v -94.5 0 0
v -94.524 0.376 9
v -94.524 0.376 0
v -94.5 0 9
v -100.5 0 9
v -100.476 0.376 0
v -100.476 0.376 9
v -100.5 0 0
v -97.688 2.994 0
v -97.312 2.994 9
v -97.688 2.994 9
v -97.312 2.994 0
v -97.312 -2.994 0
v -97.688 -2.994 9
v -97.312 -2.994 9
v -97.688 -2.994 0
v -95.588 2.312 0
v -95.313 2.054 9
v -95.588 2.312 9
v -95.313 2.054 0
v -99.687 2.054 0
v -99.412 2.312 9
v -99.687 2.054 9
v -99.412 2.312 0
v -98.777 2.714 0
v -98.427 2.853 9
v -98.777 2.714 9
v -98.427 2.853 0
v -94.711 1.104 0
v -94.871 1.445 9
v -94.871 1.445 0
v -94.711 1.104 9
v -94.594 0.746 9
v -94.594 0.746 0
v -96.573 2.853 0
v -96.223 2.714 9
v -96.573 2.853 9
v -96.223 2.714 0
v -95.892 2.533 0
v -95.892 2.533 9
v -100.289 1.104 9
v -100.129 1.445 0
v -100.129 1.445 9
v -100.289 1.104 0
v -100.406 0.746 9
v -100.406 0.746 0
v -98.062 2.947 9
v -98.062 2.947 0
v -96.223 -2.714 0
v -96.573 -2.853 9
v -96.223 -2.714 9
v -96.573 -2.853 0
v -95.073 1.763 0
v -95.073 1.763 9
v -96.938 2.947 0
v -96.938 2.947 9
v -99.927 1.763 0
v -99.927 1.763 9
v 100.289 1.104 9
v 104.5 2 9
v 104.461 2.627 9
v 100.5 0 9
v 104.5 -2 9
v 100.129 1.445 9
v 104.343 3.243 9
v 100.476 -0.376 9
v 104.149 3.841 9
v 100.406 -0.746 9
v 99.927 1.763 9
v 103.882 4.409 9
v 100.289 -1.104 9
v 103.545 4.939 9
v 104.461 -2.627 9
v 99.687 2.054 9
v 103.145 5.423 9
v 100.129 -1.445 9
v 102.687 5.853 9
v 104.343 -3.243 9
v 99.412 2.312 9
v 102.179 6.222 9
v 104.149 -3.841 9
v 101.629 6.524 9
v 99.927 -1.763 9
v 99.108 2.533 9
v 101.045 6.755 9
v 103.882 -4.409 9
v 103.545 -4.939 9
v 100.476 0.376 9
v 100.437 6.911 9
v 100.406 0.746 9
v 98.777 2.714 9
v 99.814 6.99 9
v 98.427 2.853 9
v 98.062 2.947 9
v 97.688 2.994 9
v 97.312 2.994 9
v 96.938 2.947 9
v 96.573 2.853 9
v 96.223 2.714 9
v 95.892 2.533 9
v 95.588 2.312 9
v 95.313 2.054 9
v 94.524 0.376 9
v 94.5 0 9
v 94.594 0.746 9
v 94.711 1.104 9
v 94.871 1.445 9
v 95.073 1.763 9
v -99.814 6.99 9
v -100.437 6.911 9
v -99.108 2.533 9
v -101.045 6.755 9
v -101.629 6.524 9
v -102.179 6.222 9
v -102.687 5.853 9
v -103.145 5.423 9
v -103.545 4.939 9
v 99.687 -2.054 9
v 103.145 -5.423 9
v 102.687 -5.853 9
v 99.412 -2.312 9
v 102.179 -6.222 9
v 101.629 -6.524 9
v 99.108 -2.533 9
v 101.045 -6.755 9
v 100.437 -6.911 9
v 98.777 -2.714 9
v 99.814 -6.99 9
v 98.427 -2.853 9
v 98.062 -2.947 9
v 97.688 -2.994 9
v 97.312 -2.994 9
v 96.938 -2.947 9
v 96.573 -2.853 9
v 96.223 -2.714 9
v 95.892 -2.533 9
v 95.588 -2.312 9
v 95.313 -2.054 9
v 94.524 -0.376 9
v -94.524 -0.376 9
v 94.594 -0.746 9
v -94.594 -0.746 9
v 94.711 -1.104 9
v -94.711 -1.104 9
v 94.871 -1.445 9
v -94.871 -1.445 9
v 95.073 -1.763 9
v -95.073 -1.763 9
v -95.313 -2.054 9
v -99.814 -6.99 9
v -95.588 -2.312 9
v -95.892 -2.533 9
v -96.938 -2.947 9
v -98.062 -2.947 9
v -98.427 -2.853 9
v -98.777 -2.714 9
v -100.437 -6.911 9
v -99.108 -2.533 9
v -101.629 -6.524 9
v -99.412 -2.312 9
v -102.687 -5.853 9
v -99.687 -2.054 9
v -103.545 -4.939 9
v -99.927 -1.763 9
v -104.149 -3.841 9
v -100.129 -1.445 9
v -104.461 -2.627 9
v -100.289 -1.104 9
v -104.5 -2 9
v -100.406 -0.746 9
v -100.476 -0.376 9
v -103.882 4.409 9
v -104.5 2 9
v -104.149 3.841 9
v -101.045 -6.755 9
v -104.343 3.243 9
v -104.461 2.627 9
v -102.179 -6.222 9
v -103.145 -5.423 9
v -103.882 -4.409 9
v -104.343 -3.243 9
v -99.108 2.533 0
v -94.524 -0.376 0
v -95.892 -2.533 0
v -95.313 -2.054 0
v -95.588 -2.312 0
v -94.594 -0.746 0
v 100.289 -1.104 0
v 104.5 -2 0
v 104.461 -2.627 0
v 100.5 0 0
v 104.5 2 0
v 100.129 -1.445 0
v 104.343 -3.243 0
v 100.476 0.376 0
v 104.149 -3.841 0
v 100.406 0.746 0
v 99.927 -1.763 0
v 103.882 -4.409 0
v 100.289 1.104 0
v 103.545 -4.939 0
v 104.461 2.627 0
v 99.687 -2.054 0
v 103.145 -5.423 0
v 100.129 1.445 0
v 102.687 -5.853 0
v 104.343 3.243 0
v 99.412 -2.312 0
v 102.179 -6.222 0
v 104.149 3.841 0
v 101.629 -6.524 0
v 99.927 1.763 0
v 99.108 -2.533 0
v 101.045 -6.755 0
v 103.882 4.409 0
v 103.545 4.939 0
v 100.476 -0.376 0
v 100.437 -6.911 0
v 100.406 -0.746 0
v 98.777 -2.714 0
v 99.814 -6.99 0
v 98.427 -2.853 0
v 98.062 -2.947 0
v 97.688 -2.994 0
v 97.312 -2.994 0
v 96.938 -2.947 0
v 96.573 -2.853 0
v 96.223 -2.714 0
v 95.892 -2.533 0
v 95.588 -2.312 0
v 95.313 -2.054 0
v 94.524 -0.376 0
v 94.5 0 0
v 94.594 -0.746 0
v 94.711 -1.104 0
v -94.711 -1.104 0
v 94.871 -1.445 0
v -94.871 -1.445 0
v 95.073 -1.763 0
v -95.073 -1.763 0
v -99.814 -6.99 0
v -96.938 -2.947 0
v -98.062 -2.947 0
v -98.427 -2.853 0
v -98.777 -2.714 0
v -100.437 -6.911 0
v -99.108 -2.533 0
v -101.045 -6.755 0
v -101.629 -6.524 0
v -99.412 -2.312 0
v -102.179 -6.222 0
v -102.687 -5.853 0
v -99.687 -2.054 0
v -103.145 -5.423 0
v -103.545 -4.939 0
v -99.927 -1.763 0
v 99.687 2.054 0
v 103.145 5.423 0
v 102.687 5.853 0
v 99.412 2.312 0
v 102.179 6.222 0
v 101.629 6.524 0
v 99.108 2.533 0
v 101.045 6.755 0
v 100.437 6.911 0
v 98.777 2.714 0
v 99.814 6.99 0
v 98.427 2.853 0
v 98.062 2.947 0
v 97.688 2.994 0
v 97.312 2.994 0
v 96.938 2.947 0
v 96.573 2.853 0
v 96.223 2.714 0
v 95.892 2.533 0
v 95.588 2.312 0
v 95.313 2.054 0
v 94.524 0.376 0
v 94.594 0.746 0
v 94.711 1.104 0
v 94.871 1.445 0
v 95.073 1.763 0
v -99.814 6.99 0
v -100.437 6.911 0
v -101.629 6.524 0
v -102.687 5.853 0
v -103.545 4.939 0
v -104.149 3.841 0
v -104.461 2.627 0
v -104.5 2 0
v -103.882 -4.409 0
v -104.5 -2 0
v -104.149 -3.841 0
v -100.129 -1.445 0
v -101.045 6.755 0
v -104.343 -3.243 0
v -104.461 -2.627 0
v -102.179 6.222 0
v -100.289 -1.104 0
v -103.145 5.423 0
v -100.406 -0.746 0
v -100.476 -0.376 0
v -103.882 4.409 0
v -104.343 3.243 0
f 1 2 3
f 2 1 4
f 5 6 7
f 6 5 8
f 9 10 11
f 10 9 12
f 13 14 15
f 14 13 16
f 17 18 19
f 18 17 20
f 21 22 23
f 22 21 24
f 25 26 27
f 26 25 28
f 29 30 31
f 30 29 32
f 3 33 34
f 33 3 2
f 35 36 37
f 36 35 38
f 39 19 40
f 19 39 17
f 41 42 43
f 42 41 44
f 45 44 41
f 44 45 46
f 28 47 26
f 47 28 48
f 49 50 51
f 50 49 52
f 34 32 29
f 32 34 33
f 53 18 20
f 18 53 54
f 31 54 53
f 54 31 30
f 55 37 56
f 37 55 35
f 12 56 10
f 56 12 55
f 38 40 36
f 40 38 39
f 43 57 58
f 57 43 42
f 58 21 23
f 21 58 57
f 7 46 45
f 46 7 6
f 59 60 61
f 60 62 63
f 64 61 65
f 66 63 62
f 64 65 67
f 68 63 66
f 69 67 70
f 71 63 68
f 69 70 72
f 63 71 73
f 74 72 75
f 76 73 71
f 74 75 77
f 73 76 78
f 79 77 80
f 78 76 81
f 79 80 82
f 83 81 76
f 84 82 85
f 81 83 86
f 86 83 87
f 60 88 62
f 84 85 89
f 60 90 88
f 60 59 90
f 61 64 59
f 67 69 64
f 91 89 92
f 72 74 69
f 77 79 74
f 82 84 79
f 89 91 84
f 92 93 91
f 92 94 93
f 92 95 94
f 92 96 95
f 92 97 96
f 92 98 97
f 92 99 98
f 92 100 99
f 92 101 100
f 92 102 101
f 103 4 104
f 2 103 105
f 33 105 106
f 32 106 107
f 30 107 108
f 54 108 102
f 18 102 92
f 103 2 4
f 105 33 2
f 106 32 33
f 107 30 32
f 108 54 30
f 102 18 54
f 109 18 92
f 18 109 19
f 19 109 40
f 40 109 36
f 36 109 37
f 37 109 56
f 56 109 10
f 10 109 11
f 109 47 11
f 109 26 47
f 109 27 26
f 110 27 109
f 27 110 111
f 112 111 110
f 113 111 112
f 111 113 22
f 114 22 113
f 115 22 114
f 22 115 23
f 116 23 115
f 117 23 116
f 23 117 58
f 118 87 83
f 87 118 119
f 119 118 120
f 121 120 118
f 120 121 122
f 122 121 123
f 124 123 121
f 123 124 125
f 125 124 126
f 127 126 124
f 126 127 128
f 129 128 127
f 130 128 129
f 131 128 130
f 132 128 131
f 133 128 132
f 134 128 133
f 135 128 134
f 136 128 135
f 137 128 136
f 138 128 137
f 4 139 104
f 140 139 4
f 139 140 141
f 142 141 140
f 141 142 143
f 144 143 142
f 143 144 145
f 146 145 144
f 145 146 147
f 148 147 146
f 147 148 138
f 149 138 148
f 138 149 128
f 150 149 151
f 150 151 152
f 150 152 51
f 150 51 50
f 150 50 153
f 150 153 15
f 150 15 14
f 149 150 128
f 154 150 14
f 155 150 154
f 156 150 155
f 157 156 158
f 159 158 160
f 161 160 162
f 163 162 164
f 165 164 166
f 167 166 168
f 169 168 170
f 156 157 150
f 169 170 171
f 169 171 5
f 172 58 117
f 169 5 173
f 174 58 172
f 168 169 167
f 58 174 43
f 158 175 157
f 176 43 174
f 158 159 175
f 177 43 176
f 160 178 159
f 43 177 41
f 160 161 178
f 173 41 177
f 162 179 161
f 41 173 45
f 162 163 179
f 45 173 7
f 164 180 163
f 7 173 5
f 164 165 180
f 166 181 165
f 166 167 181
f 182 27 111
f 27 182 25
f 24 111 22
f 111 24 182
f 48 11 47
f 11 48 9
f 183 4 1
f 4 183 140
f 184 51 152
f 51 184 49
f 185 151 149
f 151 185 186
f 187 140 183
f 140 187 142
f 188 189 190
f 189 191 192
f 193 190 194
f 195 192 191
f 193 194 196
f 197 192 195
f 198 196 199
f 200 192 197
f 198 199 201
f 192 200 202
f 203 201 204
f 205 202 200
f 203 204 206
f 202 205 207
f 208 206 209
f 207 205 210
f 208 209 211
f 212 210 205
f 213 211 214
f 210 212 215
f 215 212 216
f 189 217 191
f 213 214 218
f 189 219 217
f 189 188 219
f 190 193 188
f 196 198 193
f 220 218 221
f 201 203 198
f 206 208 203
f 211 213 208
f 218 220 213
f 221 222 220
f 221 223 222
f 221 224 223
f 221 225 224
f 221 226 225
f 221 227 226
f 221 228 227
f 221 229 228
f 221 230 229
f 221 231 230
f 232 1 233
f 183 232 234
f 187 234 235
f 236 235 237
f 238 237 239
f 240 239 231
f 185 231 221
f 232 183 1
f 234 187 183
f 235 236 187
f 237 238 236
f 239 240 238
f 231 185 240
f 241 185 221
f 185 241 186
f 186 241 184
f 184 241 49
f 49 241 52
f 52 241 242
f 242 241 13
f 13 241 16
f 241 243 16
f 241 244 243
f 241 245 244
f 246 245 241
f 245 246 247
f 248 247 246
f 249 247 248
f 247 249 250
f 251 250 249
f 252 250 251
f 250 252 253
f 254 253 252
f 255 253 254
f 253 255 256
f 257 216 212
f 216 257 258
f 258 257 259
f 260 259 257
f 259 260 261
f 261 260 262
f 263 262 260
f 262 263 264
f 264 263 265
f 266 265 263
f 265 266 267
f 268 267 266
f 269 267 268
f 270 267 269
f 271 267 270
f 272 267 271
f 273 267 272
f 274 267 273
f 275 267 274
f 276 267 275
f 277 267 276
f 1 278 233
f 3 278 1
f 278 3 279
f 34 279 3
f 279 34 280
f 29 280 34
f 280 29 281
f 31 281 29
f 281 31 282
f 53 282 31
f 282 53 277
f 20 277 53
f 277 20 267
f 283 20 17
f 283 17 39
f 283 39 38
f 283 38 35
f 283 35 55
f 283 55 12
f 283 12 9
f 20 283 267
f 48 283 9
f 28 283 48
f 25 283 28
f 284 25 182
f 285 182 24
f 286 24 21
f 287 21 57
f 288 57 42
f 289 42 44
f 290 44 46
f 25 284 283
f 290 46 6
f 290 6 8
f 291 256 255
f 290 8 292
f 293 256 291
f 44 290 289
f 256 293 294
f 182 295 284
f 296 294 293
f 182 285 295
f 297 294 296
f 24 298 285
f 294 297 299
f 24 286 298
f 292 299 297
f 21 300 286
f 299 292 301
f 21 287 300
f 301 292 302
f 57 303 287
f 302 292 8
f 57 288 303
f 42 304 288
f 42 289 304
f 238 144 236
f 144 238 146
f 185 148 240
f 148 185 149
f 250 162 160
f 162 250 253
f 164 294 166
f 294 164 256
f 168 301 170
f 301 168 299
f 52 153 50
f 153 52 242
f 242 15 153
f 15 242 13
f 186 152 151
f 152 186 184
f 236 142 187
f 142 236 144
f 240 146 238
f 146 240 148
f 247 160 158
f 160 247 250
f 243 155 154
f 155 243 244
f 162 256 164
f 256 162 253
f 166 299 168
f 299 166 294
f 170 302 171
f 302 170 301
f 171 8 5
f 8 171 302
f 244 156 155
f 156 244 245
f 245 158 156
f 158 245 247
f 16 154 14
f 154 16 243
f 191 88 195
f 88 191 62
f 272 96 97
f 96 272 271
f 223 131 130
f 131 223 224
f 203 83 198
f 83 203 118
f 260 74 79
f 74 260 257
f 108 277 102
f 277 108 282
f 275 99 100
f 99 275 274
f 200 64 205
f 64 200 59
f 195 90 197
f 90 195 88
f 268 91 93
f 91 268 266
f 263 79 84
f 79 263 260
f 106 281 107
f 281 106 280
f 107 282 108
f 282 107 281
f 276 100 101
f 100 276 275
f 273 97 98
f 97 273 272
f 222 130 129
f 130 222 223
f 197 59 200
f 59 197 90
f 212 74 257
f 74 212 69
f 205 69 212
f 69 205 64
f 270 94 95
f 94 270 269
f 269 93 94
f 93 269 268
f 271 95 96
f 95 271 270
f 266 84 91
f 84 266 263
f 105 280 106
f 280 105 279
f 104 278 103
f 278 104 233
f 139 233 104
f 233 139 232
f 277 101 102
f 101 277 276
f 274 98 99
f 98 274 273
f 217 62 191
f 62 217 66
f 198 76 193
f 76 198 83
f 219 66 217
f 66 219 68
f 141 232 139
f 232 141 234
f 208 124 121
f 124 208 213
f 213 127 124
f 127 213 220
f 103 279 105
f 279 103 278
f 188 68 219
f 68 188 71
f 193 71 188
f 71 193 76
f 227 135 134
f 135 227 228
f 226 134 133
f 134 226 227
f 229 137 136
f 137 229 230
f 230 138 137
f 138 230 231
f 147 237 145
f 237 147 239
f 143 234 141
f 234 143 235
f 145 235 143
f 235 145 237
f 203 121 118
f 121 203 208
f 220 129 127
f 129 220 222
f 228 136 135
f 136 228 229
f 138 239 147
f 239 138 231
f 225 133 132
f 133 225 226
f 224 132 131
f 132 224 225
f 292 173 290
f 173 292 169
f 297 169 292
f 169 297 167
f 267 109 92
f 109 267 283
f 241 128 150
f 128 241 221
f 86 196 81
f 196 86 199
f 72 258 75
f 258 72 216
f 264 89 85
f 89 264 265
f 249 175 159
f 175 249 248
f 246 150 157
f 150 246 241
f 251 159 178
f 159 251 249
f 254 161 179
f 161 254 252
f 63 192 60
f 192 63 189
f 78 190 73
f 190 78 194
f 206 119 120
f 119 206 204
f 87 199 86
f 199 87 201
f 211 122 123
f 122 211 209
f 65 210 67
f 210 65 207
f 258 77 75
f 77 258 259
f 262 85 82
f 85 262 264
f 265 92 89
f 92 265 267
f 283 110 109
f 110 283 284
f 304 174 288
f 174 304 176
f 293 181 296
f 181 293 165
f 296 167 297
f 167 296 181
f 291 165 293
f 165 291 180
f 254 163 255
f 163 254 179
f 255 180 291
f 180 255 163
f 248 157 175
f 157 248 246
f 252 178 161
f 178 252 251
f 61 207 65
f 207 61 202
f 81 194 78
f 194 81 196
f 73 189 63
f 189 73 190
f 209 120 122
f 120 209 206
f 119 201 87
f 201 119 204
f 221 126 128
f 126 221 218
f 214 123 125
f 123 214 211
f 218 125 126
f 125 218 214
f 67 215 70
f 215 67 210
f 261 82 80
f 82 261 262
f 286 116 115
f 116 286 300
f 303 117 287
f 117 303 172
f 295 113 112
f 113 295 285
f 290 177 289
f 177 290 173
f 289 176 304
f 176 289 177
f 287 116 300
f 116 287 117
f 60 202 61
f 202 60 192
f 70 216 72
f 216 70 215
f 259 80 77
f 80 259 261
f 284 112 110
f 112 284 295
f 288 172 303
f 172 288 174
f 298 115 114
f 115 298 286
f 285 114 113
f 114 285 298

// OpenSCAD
$fn = 50;


difference() {
	union() {
		hull() {
			translate(v = [-99.5000000000, 2.0000000000, 0]) {
				cylinder(h = 9, r = 5);
			}
			translate(v = [99.5000000000, 2.0000000000, 0]) {
				cylinder(h = 9, r = 5);
			}
			translate(v = [-99.5000000000, -2.0000000000, 0]) {
				cylinder(h = 9, r = 5);
			}
			translate(v = [99.5000000000, -2.0000000000, 0]) {
				cylinder(h = 9, r = 5);
			}
		}
	}
	union() {
		translate(v = [-97.5000000000, 0.0000000000, 0]) {
			cylinder(h = 9, r = 3.0000000000);
		}
		translate(v = [97.5000000000, 0.0000000000, 0]) {
			cylinder(h = 9, r = 3.0000000000);
		}
		translate(v = [-97.5000000000, 0.0000000000, 0]) {
			cylinder(h = 9, r = 1.5000000000);
		}
		translate(v = [97.5000000000, 0.0000000000, 0]) {
			cylinder(h = 9, r = 1.5000000000);
		}
		translate(v = [-97.5000000000, 0.0000000000, 0]) {
			cylinder(h = 9, r = 1.5000000000);
		}
		translate(v = [97.5000000000, 0.0000000000, 0]) {
			cylinder(h = 9, r = 1.5000000000);
		}
		translate(v = [-97.5000000000, 0.0000000000, 0]) {
			cylinder(h = 9, r = 1.5000000000);
		}
		translate(v = [97.5000000000, 0.0000000000, 0]) {
			cylinder(h = 9, r = 1.5000000000);
		}
	}
}
